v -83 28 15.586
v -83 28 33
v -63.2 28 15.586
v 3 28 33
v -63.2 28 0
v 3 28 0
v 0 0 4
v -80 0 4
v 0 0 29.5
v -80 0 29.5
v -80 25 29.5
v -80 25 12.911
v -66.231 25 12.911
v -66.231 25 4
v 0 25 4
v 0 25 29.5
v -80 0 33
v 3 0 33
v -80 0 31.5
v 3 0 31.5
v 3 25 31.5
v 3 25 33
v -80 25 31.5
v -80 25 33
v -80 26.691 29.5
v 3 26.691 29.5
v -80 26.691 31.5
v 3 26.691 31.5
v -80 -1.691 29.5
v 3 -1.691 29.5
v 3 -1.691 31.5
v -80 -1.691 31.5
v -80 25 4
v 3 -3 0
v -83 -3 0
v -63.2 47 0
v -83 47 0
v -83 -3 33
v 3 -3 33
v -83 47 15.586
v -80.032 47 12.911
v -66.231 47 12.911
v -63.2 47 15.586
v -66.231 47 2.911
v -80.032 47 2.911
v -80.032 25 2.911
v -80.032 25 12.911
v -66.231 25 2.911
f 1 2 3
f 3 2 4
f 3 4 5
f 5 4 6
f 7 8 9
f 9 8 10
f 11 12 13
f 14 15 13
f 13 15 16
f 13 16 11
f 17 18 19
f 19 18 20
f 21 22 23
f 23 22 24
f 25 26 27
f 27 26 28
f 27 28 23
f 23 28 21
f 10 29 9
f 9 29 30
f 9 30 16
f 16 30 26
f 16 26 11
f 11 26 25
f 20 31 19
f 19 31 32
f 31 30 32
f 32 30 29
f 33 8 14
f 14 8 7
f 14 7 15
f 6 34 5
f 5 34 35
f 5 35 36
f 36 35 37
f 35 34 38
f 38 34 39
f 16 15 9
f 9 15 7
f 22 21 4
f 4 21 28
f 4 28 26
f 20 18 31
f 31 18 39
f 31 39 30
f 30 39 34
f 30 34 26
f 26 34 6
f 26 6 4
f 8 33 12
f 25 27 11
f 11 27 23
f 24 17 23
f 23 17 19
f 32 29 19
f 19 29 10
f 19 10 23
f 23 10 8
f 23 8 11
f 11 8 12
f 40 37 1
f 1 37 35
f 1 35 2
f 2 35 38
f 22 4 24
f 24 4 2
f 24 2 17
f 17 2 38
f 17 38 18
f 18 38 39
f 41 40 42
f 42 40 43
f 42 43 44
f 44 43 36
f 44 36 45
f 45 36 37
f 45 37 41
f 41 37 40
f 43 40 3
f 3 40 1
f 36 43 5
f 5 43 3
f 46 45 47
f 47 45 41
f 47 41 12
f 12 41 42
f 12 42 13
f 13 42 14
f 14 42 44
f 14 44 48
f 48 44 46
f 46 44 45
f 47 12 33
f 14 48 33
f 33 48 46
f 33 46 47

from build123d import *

# Parameters (mm, degrees)
ESQUISSE1_W             = 80
ESQUISSE1_H             = 25
BOSS_EXTRU_1_DEPTH      = 4
ESQUISSE3_W             = 80
ESQUISSE3_H             = 3
BOSS_EXTRU_2_DEPTH      = 28
ESQUISSE4_W             = 28
ESQUISSE4_H             = 31
BOSS_EXTRU_3_DEPTH      = 3
ESQUISSE5_W             = 28
ESQUISSE5_H             = 31
BOSS_EXTRU_4_DEPTH      = 3
BOSS_EXTRU_5_DEPTH      = 86
ESQUISSE7_W             = 5
ESQUISSE7_H             = 3
BOSS_EXTRU_6_DEPTH      = 3
ESQUISSE8_W             = 3
ESQUISSE8_H             = 5
BOSS_EXTRU_7_DEPTH      = 25
ESQUISSE10_W            = 3
ESQUISSE10_H            = 25
BOSS_EXTRU_8_DEPTH      = 1.5
ESQUISSE11_W            = 19.800437916
ESQUISSE11_H            = 15.586484264
ESQUISSE11_W_2          = 13.800437916
ESQUISSE11_H_2          = 10
BOSS_EXTRU_9_DEPTH      = 19
ESQUISSE12_W            = 13.800437916
ESQUISSE12_H            = 10
ENL_V_MAT_EXTRU_1_DEPTH = 3


with BuildPart() as part:
    # Esquisse1 → Boss.-Extru.1 (new body)
    with BuildSketch(Plane.XY):
        with Locations((-40, 12.5)):
            Rectangle(ESQUISSE1_W, ESQUISSE1_H)
    extrude(amount=BOSS_EXTRU_1_DEPTH)

    # Esquisse3 → Boss.-Extru.2 (add)
    with BuildSketch(Plane(origin=(0, 0, 0), x_dir=(-1, 0, 0), z_dir=(0, 0, -1))):
        with Locations((40, -1.5)):
            Rectangle(ESQUISSE3_W, ESQUISSE3_H)
    boss_extru_2 = extrude(amount=-BOSS_EXTRU_2_DEPTH)

    # Symétrie1: Boss.-Extru.2 across plane
    add(boss_extru_2.mirror(Plane.ZX.offset(12.5)))

    # Esquisse4 → Boss.-Extru.3 (add)
    with BuildSketch(Plane(origin=(0, 0, 0), x_dir=(0, 0, -1), z_dir=(1, 0, 0))):
        with Locations((-14, 12.5)):
            Rectangle(ESQUISSE4_W, ESQUISSE4_H)
    extrude(amount=BOSS_EXTRU_3_DEPTH)

    # Esquisse5 → Boss.-Extru.4 (add)
    with BuildSketch(Plane.ZY.offset(80)):
        with Locations((14, 12.5)):
            Rectangle(ESQUISSE5_W, ESQUISSE5_H)
    extrude(amount=BOSS_EXTRU_4_DEPTH)

    # Esquisse6 → Boss.-Extru.5 (add)
    with BuildSketch(Plane(origin=(3, 0, 0), x_dir=(0, 0, -1), z_dir=(1, 0, 0))):
        Polygon((-31.5, 0), (-33, 0), (-33, -3), (-28, -3), (-28, 0), (-29.5, 0), (-29.5, -1.691160161), (-31.5, -1.691160161), align=None)
    boss_extru_5 = extrude(amount=-BOSS_EXTRU_5_DEPTH)

    # Esquisse7 → Boss.-Extru.6 (add)
    with BuildSketch(Plane.ZY.offset(83)):
        with Locations((30.5, -1.5)):
            Rectangle(ESQUISSE7_W, ESQUISSE7_H)
    boss_extru_6 = extrude(amount=-BOSS_EXTRU_6_DEPTH)

    # Symétrie2: Boss.-Extru.5, Boss.-Extru.6 across plane
    add(boss_extru_5.mirror(Plane.ZX.offset(12.5)))
    add(boss_extru_6.mirror(Plane.ZX.offset(12.5)))

    # Esquisse8 → Boss.-Extru.7 (add)
    with BuildSketch(Plane.XZ.offset(-25)):
        with Locations((-81.5, 30.5)):
            Rectangle(ESQUISSE8_W, ESQUISSE8_H)
    extrude(amount=BOSS_EXTRU_7_DEPTH)

    # Esquisse10 → Boss.-Extru.8 (add)
    with BuildSketch(Plane.XY.offset(28)):
        with Locations((1.5, 12.5)):
            Rectangle(ESQUISSE10_W, ESQUISSE10_H)
    extrude(amount=BOSS_EXTRU_8_DEPTH)

    # Esquisse11 → Boss.-Extru.9 (add)
    with BuildSketch(Plane(origin=(0, 28, 0), x_dir=(1, 0, 0), z_dir=(0, 1, 0))):
        with Locations((-73.099781042, -7.793242132)):
            Rectangle(ESQUISSE11_W, ESQUISSE11_H)
        with Locations((-73.131327902, -7.910815451)):
            Rectangle(ESQUISSE11_W_2, ESQUISSE11_H_2, mode=Mode.SUBTRACT)
    extrude(amount=BOSS_EXTRU_9_DEPTH)

    # Esquisse12 → Enlèv. mat.-Extru.1 (cut)
    with BuildSketch(Plane(origin=(0, 28, 0), x_dir=(1, 0, 0), z_dir=(0, 1, 0))):
        with Locations((-73.131327902, -7.910815451)):
            Rectangle(ESQUISSE12_W, ESQUISSE12_H)
    extrude(amount=-ENL_V_MAT_EXTRU_1_DEPTH, mode=Mode.SUBTRACT)


solid = part.part
